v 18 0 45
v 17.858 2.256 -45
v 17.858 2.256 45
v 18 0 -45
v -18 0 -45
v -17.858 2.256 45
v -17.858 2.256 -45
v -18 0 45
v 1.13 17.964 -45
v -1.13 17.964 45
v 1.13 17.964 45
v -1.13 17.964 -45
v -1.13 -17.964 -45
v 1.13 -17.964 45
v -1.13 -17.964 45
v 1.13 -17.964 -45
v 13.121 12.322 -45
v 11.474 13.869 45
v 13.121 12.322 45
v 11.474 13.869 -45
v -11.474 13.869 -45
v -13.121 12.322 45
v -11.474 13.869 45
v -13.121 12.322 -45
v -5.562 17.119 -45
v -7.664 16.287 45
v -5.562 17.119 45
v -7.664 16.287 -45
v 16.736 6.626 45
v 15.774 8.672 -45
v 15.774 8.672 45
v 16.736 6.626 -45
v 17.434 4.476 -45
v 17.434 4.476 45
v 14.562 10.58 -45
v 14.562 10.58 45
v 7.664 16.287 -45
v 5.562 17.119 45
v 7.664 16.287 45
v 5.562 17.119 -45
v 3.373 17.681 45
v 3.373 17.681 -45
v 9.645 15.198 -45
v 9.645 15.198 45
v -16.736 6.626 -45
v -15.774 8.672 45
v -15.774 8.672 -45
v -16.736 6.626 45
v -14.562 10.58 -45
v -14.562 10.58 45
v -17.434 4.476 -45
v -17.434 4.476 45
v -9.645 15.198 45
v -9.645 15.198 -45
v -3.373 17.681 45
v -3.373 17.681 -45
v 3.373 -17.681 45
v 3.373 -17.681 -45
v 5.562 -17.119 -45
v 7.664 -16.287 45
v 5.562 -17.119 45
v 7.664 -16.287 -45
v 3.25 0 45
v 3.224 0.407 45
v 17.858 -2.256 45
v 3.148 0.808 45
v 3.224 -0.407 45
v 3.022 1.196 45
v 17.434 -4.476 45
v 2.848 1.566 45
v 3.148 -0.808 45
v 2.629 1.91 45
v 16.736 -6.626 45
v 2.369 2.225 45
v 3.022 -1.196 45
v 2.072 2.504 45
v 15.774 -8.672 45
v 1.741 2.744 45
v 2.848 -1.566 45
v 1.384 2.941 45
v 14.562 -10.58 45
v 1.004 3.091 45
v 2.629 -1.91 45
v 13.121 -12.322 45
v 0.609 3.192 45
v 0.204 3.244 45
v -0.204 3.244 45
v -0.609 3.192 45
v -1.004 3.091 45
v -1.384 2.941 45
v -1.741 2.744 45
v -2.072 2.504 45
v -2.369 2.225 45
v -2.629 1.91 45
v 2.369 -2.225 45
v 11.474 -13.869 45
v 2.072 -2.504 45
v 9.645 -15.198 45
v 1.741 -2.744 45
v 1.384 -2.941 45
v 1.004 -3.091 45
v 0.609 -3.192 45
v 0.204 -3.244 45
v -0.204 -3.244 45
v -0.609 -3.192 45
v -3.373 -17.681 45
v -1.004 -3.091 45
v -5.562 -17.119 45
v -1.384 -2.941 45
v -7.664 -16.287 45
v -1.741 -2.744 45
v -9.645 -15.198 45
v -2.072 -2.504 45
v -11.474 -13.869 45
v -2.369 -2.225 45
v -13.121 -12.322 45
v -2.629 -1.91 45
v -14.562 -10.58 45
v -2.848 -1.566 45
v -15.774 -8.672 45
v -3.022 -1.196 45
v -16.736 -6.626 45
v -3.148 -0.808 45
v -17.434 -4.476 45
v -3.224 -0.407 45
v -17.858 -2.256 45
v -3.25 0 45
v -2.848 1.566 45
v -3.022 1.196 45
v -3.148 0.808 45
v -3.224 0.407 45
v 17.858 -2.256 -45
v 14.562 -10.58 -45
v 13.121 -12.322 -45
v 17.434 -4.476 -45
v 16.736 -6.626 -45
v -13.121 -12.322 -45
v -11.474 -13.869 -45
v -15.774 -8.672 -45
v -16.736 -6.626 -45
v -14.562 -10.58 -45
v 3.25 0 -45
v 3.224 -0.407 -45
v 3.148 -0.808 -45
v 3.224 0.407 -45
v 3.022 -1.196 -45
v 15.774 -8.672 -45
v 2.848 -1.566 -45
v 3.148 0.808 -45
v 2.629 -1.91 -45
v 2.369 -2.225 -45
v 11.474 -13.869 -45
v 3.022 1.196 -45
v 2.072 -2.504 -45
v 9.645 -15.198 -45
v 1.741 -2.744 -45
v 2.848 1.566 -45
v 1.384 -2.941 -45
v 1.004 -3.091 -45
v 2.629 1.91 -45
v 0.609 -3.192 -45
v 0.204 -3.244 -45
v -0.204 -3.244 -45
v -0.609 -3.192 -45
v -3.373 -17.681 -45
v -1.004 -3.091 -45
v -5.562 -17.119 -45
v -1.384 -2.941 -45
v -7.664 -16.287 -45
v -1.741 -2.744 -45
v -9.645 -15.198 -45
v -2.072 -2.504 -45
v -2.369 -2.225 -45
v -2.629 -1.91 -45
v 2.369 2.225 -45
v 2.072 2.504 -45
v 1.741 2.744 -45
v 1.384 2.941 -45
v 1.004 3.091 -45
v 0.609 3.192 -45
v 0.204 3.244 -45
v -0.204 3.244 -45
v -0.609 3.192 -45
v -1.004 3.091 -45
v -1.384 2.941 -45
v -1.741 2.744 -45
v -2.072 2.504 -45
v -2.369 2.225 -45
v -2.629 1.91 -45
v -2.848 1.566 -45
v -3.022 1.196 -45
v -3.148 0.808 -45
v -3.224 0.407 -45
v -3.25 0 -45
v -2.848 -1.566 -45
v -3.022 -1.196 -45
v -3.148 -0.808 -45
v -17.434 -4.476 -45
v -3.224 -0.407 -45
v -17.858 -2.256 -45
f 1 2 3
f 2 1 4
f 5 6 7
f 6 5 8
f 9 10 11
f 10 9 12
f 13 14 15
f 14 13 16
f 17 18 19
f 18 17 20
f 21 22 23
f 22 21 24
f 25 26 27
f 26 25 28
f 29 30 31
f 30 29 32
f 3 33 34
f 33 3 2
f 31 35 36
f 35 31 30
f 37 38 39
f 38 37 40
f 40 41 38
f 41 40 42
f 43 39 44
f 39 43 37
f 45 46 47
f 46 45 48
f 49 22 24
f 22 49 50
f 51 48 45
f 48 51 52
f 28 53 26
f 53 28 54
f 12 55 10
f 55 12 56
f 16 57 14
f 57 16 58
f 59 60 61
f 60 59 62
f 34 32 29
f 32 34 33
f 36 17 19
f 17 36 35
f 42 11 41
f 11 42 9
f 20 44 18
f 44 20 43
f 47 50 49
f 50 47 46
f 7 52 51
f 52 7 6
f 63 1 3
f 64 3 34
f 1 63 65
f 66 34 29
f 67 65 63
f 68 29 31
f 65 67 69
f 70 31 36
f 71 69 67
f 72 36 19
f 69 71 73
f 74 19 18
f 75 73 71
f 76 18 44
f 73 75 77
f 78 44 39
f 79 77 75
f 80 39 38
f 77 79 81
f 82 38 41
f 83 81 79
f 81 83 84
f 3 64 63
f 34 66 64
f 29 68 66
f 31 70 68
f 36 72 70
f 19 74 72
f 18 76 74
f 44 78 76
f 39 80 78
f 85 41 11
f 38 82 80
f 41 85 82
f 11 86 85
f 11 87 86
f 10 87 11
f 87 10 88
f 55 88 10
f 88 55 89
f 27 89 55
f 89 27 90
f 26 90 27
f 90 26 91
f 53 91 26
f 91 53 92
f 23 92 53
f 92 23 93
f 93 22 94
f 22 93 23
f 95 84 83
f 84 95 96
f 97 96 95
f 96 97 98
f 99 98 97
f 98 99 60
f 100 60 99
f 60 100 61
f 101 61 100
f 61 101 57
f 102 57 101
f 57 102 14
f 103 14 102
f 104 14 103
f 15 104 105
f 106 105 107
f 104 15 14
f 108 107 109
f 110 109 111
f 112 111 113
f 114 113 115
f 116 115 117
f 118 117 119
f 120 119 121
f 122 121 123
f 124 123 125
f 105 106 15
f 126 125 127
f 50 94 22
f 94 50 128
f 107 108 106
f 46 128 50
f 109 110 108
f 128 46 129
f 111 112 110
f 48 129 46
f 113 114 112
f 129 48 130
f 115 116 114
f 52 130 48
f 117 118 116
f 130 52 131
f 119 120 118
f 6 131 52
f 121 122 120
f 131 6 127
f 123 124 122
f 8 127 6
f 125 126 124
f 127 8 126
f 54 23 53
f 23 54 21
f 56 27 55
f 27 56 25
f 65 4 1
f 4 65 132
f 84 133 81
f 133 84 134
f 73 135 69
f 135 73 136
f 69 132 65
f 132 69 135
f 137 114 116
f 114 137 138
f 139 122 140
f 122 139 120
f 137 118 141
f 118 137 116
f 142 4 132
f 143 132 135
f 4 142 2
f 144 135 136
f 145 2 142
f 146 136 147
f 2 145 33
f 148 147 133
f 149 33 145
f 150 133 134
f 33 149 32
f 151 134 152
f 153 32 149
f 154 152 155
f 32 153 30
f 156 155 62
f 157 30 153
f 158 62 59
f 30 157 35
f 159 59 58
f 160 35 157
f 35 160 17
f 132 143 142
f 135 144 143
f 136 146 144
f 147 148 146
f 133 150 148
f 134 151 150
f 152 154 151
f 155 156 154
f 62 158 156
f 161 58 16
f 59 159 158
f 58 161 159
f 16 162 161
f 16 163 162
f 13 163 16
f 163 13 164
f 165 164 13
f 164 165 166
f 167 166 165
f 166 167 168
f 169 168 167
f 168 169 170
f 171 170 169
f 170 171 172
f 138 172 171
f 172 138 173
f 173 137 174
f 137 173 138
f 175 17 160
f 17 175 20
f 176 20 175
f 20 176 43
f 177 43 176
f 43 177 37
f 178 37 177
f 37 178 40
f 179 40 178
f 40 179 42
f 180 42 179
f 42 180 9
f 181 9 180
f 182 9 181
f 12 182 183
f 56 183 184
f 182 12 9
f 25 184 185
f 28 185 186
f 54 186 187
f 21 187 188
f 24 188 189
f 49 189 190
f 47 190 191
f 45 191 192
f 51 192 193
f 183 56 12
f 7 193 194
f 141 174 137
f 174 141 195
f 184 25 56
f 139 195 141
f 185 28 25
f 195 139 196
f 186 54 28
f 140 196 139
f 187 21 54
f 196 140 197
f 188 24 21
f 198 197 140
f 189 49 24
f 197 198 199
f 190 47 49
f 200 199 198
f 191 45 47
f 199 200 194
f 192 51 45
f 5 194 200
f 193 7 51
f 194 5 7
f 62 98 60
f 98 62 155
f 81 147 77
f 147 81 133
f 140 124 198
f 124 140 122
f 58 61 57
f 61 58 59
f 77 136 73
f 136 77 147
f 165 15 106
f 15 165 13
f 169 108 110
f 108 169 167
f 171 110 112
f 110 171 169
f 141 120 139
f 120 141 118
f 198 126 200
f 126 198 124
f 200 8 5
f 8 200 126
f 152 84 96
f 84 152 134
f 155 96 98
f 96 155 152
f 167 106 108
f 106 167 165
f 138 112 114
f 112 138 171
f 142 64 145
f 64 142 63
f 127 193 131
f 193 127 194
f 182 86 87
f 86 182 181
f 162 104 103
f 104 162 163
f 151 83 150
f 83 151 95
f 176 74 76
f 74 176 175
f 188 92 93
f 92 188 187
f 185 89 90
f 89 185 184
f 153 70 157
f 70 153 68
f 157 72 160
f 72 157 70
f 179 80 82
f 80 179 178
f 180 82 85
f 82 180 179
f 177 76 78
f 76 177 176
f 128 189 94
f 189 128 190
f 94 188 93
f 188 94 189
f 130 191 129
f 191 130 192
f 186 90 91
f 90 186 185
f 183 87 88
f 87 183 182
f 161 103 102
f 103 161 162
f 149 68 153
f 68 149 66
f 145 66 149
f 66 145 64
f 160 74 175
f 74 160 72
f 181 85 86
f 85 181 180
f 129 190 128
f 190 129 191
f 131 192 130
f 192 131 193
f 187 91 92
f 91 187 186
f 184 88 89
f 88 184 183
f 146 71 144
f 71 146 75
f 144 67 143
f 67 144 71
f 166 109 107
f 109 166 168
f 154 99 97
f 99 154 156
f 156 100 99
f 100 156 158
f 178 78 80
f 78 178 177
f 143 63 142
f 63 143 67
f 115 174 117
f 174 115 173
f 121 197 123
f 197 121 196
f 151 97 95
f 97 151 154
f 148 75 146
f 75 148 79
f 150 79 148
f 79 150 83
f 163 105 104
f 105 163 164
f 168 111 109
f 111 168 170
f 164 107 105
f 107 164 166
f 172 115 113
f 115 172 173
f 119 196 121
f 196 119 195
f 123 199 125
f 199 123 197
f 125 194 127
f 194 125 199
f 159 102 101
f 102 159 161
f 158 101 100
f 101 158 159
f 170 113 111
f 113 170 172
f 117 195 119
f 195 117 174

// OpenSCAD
$fn = 50;


difference() {
	union() {
		translate(v = [0, 0, -45.0000000000]) {
			cylinder(h = 90, r = 18.0000000000);
		}
	}
	union() {
		translate(v = [0, 0, -100.0000000000]) {
			cylinder(h = 200, r = 3.2500000000);
		}
	}
}
